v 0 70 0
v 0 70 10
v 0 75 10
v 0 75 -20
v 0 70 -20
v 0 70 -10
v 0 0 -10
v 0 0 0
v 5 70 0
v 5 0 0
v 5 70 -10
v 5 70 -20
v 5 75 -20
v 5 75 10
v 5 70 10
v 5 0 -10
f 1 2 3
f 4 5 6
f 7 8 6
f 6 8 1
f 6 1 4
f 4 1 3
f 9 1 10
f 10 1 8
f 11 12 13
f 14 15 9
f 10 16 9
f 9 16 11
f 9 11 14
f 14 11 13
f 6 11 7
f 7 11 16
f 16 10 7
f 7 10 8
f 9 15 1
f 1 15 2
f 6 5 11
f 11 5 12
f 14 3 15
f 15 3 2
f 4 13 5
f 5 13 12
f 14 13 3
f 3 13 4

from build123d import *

# Parameters (mm, degrees)
SKETCH_1_W      = 5
SKETCH_1_H      = 10
EXTRUDE_1_DEPTH = 70
SKETCH_2_W      = 5
SKETCH_2_H      = 10
EXTRUDE_2_DEPTH = 5


with BuildPart() as part:
    # 草图1 → 凸台-拉伸1 (new body)
    with BuildSketch(Plane(origin=(0, 0, 0), x_dir=(1, 0, 0), z_dir=(0, 1, 0))):
        with Locations((2.5, 5)):
            Rectangle(SKETCH_1_W, SKETCH_1_H)
    extrude(amount=EXTRUDE_1_DEPTH)

    # 草图2 → 凸台-拉伸2 (add)
    with BuildSketch(Plane(origin=(0, 70, 0), x_dir=(1, 0, 0), z_dir=(0, 1, 0))):
        with Locations((2.5, 15)):
            Rectangle(SKETCH_2_W, SKETCH_2_H)
        with Locations((2.5, 5)):
            Rectangle(SKETCH_2_W, SKETCH_2_H)
        with Locations((2.5, -5)):
            Rectangle(SKETCH_2_W, SKETCH_2_H)
    extrude(amount=EXTRUDE_2_DEPTH)


solid = part.part
